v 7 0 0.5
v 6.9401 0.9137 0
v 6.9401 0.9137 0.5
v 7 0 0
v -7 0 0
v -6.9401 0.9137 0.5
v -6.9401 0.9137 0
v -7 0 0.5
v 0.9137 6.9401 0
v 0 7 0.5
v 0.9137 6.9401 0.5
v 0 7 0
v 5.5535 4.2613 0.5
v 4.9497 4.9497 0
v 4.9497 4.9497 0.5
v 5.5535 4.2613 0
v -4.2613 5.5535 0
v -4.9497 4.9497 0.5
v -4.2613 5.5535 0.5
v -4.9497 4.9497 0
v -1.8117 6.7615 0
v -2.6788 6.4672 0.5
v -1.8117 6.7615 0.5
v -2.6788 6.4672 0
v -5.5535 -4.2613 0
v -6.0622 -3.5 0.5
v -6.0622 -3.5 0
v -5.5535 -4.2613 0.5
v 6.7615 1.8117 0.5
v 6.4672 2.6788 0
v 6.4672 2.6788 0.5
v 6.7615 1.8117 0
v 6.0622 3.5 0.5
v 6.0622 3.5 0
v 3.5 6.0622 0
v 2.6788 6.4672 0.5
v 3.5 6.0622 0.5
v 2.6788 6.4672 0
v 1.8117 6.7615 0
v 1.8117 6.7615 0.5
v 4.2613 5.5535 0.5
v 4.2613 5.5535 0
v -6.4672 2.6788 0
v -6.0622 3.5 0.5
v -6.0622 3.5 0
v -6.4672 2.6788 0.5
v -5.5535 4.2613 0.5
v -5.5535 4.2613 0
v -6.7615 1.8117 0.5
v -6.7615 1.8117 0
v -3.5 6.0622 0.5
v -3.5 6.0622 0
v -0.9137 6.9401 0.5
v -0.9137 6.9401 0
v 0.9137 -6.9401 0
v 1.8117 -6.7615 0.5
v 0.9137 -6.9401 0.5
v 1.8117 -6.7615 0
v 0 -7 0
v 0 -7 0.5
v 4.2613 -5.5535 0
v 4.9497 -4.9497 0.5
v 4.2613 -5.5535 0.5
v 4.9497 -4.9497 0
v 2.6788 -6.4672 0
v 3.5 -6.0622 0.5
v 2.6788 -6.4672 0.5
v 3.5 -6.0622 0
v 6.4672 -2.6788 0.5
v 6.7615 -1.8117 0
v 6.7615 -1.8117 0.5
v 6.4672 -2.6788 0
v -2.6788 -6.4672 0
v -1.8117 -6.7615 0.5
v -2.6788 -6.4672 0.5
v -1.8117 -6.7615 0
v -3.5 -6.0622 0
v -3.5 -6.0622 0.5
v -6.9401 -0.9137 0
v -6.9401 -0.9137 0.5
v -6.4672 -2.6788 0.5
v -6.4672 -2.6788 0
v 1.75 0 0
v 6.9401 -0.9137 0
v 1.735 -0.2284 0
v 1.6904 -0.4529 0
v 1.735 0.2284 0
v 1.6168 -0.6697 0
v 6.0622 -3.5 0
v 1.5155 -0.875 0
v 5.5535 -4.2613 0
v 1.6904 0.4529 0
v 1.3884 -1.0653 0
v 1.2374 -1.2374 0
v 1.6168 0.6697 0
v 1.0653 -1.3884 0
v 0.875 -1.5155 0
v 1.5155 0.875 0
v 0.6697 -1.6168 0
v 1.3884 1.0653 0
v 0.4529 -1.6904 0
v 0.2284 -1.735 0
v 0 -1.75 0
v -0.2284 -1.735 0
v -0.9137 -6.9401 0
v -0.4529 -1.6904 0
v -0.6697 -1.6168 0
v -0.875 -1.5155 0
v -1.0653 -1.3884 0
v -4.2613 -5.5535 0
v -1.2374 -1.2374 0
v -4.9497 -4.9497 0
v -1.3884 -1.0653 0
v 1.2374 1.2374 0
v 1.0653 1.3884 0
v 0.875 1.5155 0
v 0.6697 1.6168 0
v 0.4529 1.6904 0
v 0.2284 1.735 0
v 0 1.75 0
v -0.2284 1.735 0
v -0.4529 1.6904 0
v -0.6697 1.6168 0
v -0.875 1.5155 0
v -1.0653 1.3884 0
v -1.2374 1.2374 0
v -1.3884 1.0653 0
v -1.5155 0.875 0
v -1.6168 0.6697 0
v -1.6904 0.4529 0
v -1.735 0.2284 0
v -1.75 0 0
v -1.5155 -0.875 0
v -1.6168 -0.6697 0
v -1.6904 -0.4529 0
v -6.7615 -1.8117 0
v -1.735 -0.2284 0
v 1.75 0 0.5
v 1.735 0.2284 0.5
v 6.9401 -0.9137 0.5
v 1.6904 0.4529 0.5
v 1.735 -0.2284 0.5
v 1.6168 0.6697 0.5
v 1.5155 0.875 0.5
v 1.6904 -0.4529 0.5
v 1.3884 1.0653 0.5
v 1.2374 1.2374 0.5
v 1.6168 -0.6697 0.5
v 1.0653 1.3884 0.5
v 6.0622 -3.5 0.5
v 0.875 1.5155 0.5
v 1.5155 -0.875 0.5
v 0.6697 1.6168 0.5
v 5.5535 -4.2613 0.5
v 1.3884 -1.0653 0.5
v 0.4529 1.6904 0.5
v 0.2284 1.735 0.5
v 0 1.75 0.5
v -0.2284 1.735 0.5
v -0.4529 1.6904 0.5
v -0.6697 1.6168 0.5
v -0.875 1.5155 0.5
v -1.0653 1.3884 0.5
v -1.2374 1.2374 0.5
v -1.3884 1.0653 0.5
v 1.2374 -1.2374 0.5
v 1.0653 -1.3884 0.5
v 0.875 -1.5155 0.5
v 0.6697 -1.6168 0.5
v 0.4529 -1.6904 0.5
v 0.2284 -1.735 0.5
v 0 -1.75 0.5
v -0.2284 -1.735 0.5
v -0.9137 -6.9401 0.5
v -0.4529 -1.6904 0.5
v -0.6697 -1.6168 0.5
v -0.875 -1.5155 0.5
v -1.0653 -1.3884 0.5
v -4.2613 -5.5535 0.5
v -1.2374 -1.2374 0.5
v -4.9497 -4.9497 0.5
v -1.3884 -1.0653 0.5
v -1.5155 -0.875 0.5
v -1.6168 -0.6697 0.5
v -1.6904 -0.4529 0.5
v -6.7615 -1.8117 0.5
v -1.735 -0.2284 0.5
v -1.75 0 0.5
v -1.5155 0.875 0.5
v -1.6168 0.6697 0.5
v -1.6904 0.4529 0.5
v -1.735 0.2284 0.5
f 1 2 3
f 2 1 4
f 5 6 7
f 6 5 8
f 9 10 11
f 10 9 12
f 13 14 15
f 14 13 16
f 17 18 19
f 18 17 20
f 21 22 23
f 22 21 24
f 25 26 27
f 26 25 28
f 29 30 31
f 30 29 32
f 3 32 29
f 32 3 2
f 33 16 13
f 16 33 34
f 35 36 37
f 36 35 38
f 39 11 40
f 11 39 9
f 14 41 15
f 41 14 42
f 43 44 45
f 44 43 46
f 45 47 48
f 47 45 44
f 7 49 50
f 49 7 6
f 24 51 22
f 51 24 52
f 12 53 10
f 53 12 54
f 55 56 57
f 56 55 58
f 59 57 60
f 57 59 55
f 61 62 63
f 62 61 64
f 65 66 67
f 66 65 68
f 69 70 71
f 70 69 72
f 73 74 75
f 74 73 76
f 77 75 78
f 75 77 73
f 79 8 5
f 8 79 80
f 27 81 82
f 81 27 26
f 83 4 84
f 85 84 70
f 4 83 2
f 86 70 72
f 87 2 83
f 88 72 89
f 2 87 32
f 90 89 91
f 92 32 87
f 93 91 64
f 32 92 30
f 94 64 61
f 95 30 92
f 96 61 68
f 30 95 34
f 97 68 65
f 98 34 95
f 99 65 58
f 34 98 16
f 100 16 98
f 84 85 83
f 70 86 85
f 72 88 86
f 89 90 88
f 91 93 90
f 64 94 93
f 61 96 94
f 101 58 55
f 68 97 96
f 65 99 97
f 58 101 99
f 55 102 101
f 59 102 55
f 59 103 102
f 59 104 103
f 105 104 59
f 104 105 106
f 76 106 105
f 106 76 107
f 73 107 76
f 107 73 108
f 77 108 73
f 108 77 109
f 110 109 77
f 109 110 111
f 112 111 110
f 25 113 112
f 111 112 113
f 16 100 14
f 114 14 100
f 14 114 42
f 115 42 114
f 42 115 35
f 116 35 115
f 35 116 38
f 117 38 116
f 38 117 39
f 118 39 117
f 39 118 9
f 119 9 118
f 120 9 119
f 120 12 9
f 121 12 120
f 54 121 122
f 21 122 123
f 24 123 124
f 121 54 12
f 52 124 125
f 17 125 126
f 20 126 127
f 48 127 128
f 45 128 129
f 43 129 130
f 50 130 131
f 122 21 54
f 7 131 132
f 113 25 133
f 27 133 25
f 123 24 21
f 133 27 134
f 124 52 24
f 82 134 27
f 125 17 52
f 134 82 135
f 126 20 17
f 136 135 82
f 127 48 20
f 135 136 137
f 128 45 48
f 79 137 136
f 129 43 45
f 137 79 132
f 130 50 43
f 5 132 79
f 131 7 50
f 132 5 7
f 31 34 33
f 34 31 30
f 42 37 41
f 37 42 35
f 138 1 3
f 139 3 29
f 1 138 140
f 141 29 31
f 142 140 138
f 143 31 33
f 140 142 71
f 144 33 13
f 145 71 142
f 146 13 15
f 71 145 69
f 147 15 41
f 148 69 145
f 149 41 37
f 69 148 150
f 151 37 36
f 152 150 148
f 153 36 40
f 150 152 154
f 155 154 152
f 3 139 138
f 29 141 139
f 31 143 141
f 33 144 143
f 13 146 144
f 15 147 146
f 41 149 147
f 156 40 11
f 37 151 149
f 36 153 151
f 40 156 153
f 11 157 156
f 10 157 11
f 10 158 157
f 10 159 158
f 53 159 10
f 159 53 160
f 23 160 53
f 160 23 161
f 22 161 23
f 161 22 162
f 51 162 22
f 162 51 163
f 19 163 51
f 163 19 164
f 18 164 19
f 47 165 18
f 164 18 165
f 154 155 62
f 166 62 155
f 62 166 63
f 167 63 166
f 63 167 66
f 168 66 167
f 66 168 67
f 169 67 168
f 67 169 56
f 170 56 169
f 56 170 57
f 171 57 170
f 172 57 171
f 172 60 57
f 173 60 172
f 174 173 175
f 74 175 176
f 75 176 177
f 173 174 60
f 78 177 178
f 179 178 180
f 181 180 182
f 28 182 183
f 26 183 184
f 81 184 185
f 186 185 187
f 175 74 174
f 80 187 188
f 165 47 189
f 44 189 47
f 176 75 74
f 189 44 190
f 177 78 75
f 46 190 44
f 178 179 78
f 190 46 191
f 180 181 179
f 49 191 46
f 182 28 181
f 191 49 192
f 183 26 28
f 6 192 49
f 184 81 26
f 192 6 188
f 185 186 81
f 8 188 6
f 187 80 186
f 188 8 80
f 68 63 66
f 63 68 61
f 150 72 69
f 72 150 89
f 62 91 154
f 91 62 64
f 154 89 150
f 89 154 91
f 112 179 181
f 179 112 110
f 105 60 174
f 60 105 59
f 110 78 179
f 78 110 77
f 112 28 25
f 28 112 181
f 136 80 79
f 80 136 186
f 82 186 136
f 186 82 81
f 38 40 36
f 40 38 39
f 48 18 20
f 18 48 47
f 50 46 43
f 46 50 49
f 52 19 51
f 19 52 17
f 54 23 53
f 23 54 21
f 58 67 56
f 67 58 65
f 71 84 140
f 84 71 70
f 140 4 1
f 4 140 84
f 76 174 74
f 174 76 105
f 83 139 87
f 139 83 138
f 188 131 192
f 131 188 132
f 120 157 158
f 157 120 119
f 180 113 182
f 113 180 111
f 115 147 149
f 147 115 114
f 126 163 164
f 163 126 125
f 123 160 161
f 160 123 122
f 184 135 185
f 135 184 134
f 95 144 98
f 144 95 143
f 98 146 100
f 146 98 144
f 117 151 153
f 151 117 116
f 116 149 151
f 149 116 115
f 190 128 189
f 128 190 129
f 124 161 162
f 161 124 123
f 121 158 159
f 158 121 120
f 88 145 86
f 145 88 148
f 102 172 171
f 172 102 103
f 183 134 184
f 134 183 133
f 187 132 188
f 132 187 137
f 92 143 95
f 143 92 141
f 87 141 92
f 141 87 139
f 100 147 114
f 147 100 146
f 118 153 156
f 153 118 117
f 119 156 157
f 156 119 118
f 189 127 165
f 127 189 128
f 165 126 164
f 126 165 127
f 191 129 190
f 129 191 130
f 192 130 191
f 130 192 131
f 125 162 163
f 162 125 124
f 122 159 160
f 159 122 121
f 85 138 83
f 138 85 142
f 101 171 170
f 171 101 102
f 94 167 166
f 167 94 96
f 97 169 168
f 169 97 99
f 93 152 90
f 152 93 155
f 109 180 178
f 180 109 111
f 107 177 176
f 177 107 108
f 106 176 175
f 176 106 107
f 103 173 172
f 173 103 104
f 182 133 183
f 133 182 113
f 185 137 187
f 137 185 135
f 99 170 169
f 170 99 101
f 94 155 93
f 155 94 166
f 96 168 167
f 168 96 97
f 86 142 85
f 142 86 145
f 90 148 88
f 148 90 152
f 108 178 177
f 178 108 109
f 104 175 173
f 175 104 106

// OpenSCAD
// file: parameters.scad
// =============================================================================
// Gen-CD — nightly 2026-10-14 (physics_scorer, honest magpylib watts)
// Push past Gen-CA on the same arc-nested one-plate architecture: poles out to R86, bobbins r65–105 × 4.95 mm copper. Full-resolution scorer picks this window at ≈8.56 W (386 m, at the wire budget) with a Ø229 stator that still packs; thinner-copper R86 tips (r65–107 × 4.65) need Ø232+ and would not pack. Same 8 bolt-on arcs/rotor + D-flat hub + open-centre stator + in-place bobbin bases that unlocked Gen-CA.
// Clocking 0 deg (magnets N facing S) + D-flat keyed bore + index notch + flip-symmetric hole map.
// Windable 2-piece bobbin; turns = physics_scorer turns_fit; copper only between flanges.
// Steel back-iron: 2× Ø198 × 4.76 mm (3/16") mild-steel discs (steel_backiron_disc.dxf); magnets sit ON the steel
// (through-pockets) -> score with --back-iron. Night 2026-10-14.
// =============================================================================
topology            = "dual_rotor";

// --- Wire / winding (physics_scorer winding-fit) -------------------------------
wire_awg            = 26;
wire_od             = 0.45;     // insulated OD mm (bare 0.405)
fill_realistic      = 0.65;     // insulated-wire area / window (DENSE layered wind with a jig; scorer cap 0.65)
turns               = 370;       // = physics_scorer turns_fit (do NOT raise)
coil_former_type    = "bobbin";
coil_core_inset     = 18.31;     // radial copper build: hub = copper boundary inset by this
wind_build_axial    = 0.0;      // nothing proud of the flanges
wind_build_radial   = 0.0;

// --- Bobbin (base + lid) ---------------------------------------------------------
coil_id_r           = 65.00;    // copper boundary sector
coil_od_r           = 105.00;
span_deg            = 26.91;    // = pitch - 2*asin((wall+0.85)/coil_id_r) -> >=1.2 mm stator web
former_web          = 4.95;     // copper height between flanges (TALL copper: steel keeps Bz up)
flange_t            = 0.80;     // >= 0.8 mm FDM wall rule (tall winds push on the flanges)
wall                = 0.80;     // flange lip beyond copper
former_bare_h       = former_web + 2 * flange_t;
coil_envelope_h     = former_bare_h + 2 * wind_build_axial;
tab_w               = 7.0;
tab_len             = 7.0;
tab_h               = former_bare_h / 2;
pin_d               = 1.9;      // 1.75 mm filament locating pin
coil_mount_r        = coil_od_r + 0.2 + 4.0;
lead_y              = 1.6;
lead_slot_w         = 0.9;
lead_groove_d       = 0.6;

// --- Gap -------------------------------------------------------------------------
run_clear           = 0.50;     // rotor face -> flange
gap_spacer_h        = run_clear + wind_build_axial;
m2m                 = coil_envelope_h + 2 * run_clear;   // rotor face to rotor face (= gap_sleeve length)

// --- Stator ----------------------------------------------------------------------
coil_stations       = 12;
bay_clear           = 0.35;     // 0.35 mm: bobbin BASES print IN PLACE inside the stator bays (print-in-place gap), then pop out
stator_thick        = former_bare_h;                        // bobbins flush both faces
stator_od           = 229.0;
shaft_clear_stator  = 14.0;     // stator is static; gap sleeve OD 12 spins inside
stator_ir           = 59.85;    // ANNULAR stator: open centre (nested one-plate pack); inner rim 4.0 mm

// --- Rotor(s) --------------------------------------------------------------------
magnet_Br           = 1.43;     // N52
magnet_d_large      = 20.0;
magnet_h_large      = 5.0;      // one O20x5 per pocket
magnet_h_small      = 5.0;      // unused: no O5 pockets in this kit
halbach_magnetisation = "none";  // NO O5 assist magnets in this kit (scan: they lower the 4-pole score)
rotor_b_same_axis   = true;     // same-index magnets share one axis: N faces S across the gap
large_pocket_d      = 20.3;
small_pocket_d      = 5.3;
pocket_h            = 5.00;     // THROUGH the carrier: magnet back face sits on the steel disc (FLUSH seat: carrier = magnet height, magnet face level with the rotor face)
large_n             = 8;
R_large             = 86.0;
small_r_list        = [];       // no O5 pockets
carrier_od          = 198.0;
ring_ir             = 72.85;    // RING rotor: PLA magnet ring r ring_ir..carrier_od/2 (steel disc = structural rotor)
hub_flange_od       = 74.0;     // separate rotor_hub flange (inside the ring, flush with the ring face)
csk_d               = 6.6;      // M3 countersunk head pocket (ISO 10642 head 6.0 nominal) on the stator face
csk_depth           = 1.55;     // = (csk_d - m3_clear) / 2: 90 deg cone; head sits 0.3 mm below the face
n_seg               = 8;        // magnet-carrier ARCS per rotor (segmented carrier)
seg_deg             = 360 / n_seg;
seg_start           = -22.5;   // arc edge angle (between pocket 0 and its clamp bolt)
seg_kerf_deg        = 0.4;      // gap between neighbouring arcs on the steel
carrier_thick       = pocket_h;
hub_h               = 12.0;     // > steel_t + insert: radial set-screw clears the steel
hub_od              = 24.0;     // slim hub so the M4 brace rods fit at R~18 inside the coil ring
hub_insert_d        = 4.0;      // M3 heat-set insert, radial, bears on the D-flat
rotor_b_offset_deg  = 0.0;      // CLOCKING: magnets directly opposite
shaft_key           = "dflat";
dflat_depth         = 0.5;      // 8 mm shaft with 0.5 mm flat (7.5 across flat)
index_notch_d       = 3.0;

// --- Steel back-iron (buyable laser-cut) -------------------------------------------
steel_t             = 4.76;      // mild steel thickness (image method ignores it; sized from steel_flux.py so the return path stays well below saturation)
steel_center_hole   = 26.0;     // slips over the rotor hub (OD 24)
steel_od            = carrier_od;   // steel disc OD = rotor carrier OD

// --- Modular MAX interface ----------------------------------------------------------
shaft_bore          = 8.35;
dflat_x             = 4.0 - dflat_depth + (shaft_bore - 8.0) / 2;
bearing_d           = 21.85;
bearing_h           = 7.2;
m3_clear            = 3.5;
bolt_r_inner        = 30.0;     // M3 steel-disc clamp bolts (inside the magnet ring)
bolt_n_inner        = 4;
bolt_inner_angles   = [0, 90, 180, 270];
bolt_r_outer        = 86.0;     // second M3 steel-disc clamp ring
bolt_outer_angles   = [22.5, 67.5, 112.5, 157.5, 202.5, 247.5, 292.5, 337.5];
flange_bolt_r       = 109.5;     // frame rods: OUTSIDE the rotor OD (rotors spin inside them)
flange_bolt_n       = 4;
flange_bolt_offset  = 45.00;    // between coil stations -> never cuts a lead groove/tab
brace_r             = 18.0;
brace_d             = 4.3;      // temporary M4 jack rods (assembly only)
brace_n             = 4;
brace_angles        = [45, 135, 225, 315];          // flip-symmetric

spacer_pad_od       = 14.0;
spacer_pad_id       = m3_clear;
endbell_od          = 229.0;
endbell_thick       = 8.0;
endbell_shaft_clear = 10.0;
collar_h            = 10.0;
standoff_od         = 9.0;
frame_standoff_h    = run_clear + carrier_thick + hub_h + collar_h + 2.0;
sleeve_od           = 12.0;
plate_max_mm        = 410;

$fn = 64;
// main file
// Gen-CD — assembly gap shim, h = run_clear (rotor face -> flange); copper is inside the flanges
include <parameters.scad>;
$fn = 48;
difference() {
    cylinder(d=spacer_pad_od, h=gap_spacer_h);
    translate([0, 0, -0.1]) cylinder(d=spacer_pad_id, h=gap_spacer_h + 0.2);
}
